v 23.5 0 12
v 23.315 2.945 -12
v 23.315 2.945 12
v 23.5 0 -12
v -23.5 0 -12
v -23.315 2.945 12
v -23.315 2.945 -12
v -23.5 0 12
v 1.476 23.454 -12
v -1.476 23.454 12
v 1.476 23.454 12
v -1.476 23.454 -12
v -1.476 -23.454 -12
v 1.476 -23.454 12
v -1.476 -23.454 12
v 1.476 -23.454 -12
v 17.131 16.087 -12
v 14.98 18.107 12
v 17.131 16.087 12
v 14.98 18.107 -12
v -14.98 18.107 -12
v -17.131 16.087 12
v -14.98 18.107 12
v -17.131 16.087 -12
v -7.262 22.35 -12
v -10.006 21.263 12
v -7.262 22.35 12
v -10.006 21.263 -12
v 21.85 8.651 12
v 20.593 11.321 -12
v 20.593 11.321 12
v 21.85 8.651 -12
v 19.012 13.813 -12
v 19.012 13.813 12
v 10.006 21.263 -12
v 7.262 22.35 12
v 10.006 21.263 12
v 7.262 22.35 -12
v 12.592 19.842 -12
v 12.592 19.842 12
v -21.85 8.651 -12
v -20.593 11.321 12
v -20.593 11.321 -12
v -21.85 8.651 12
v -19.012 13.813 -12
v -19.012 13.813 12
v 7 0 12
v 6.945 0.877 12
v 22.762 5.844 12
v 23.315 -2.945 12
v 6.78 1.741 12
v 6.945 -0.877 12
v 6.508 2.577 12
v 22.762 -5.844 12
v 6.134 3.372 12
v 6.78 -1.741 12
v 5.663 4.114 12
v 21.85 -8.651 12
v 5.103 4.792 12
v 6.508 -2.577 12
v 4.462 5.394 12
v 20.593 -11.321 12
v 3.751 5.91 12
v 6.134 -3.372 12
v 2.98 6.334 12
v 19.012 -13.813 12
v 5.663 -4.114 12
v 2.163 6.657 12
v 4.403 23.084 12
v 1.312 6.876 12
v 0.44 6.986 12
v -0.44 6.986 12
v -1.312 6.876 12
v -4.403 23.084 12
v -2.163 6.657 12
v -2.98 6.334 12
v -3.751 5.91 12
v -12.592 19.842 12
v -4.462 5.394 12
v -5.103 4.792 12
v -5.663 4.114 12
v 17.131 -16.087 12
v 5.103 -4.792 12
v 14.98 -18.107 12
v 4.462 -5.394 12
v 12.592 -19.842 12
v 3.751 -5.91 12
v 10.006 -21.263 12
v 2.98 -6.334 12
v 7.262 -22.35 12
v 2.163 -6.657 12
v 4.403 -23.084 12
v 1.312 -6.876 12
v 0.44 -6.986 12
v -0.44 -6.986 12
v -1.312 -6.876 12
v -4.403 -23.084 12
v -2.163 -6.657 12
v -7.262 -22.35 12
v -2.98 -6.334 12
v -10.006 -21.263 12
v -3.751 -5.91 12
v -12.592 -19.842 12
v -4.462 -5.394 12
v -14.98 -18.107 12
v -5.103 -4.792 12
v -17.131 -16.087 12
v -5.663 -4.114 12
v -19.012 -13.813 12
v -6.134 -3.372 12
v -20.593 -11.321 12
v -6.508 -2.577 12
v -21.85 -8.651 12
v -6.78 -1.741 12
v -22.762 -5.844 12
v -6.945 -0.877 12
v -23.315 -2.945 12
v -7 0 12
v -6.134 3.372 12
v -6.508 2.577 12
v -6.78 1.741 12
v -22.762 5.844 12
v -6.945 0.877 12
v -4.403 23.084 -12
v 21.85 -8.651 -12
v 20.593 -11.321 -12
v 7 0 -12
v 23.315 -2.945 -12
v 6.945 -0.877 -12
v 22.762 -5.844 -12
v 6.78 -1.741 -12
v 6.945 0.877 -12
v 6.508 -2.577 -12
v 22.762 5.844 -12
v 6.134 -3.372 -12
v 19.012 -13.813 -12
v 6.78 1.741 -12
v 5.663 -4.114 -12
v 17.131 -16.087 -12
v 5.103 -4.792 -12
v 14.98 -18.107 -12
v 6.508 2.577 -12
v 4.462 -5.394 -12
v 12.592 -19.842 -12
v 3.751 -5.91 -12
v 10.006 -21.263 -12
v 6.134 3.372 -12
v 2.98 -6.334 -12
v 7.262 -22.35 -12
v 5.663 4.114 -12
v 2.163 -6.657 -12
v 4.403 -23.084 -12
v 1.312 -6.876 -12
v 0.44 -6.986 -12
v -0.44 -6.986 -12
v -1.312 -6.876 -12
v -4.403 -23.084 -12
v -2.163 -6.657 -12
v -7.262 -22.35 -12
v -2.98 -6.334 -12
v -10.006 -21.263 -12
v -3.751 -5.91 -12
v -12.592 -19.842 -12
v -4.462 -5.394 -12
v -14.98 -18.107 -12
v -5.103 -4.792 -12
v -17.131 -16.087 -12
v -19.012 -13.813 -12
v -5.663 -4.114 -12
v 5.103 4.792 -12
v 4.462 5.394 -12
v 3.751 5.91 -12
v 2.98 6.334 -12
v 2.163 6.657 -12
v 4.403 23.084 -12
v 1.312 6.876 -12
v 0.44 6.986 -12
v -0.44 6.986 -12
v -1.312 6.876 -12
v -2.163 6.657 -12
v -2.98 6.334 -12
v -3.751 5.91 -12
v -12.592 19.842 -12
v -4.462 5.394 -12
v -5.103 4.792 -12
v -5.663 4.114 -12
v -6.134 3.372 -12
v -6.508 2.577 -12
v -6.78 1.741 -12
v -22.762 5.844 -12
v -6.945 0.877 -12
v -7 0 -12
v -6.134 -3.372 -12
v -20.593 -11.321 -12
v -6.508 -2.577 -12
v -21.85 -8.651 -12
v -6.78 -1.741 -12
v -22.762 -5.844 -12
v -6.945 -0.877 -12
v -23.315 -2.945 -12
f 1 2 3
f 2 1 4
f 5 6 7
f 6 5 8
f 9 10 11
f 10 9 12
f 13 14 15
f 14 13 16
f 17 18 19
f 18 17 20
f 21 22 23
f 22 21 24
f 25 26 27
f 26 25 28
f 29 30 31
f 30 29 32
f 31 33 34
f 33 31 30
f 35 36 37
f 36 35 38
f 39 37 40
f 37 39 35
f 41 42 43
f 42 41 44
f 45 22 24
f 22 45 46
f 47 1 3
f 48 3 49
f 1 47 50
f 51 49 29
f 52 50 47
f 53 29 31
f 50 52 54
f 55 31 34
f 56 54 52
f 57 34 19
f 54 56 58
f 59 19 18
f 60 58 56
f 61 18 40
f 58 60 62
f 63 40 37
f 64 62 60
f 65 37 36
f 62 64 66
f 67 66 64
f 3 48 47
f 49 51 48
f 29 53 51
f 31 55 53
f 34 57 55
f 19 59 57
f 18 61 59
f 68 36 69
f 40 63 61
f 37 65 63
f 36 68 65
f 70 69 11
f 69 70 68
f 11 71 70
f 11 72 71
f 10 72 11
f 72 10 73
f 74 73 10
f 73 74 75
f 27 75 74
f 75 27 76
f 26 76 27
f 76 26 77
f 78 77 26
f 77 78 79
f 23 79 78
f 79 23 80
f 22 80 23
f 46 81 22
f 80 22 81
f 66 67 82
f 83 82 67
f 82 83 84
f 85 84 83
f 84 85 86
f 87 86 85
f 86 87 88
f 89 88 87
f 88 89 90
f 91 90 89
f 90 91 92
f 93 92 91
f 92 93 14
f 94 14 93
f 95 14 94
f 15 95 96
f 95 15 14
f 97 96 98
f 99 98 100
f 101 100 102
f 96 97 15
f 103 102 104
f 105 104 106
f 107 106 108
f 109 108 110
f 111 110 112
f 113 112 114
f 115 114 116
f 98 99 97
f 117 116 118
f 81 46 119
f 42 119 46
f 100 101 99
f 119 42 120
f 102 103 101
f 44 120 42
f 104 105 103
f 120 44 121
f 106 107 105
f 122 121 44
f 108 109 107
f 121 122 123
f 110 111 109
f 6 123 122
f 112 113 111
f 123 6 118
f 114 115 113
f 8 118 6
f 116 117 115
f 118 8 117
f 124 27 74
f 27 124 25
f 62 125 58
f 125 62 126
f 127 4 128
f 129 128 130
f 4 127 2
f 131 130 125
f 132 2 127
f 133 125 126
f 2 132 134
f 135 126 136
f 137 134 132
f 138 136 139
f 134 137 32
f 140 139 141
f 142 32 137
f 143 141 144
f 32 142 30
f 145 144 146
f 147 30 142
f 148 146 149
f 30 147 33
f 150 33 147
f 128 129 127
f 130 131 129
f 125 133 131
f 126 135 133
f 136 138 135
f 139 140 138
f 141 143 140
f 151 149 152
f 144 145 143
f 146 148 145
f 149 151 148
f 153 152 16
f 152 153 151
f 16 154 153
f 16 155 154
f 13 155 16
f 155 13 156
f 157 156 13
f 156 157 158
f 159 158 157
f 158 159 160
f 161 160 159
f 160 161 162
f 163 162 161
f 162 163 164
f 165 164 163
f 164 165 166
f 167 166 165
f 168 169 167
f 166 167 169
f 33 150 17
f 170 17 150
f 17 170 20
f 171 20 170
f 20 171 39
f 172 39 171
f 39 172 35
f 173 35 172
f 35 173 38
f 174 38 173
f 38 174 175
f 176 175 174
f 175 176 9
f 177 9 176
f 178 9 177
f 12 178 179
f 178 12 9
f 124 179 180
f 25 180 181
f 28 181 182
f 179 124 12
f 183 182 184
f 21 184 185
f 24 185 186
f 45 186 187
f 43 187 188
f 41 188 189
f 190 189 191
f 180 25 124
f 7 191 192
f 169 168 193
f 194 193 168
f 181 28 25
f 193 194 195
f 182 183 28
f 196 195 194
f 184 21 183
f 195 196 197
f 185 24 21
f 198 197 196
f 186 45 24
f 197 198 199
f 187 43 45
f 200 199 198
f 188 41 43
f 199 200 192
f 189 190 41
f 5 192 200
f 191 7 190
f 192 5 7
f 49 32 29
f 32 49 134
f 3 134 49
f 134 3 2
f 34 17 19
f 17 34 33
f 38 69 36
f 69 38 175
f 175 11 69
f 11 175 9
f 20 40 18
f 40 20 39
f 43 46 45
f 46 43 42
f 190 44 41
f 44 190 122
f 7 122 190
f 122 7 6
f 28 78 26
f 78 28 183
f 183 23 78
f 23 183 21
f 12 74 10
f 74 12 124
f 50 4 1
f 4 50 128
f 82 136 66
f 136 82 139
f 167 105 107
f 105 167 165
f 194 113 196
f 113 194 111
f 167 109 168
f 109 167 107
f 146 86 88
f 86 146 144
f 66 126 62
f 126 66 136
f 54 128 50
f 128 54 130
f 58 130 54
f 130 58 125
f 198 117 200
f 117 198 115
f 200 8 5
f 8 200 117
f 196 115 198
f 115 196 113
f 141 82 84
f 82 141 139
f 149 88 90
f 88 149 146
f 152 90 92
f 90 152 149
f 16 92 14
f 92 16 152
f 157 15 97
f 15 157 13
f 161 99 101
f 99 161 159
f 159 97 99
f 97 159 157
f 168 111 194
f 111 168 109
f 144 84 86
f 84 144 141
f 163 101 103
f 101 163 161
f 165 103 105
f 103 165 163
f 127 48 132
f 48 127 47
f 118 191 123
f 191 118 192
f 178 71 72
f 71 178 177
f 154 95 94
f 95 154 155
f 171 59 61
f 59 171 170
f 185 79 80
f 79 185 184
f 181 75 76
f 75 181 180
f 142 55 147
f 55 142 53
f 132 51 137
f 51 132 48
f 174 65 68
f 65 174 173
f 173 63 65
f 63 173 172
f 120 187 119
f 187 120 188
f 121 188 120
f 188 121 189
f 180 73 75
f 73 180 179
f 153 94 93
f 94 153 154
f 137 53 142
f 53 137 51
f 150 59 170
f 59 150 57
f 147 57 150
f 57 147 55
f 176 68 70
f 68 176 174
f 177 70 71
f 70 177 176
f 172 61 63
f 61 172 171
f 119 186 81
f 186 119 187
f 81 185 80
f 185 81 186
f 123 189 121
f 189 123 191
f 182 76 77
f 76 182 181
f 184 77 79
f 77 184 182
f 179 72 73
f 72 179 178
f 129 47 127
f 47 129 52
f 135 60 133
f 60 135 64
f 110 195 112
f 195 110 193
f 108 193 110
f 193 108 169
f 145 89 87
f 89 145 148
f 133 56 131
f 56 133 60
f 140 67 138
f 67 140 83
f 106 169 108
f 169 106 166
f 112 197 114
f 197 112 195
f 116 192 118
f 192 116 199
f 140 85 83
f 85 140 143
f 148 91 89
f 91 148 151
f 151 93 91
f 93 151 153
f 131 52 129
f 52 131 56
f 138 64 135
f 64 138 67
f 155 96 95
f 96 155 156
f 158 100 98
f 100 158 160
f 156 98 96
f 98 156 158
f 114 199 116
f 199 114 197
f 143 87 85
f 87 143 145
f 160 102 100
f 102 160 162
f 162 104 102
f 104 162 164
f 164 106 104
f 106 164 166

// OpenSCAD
$fn = 50;


difference() {
	union() {
		translate(v = [0, 0, -12.0000000000]) {
			cylinder(h = 24, r = 23.5000000000);
		}
	}
	union() {
		translate(v = [0, 0, -100.0000000000]) {
			cylinder(h = 200, r = 7);
		}
	}
}
